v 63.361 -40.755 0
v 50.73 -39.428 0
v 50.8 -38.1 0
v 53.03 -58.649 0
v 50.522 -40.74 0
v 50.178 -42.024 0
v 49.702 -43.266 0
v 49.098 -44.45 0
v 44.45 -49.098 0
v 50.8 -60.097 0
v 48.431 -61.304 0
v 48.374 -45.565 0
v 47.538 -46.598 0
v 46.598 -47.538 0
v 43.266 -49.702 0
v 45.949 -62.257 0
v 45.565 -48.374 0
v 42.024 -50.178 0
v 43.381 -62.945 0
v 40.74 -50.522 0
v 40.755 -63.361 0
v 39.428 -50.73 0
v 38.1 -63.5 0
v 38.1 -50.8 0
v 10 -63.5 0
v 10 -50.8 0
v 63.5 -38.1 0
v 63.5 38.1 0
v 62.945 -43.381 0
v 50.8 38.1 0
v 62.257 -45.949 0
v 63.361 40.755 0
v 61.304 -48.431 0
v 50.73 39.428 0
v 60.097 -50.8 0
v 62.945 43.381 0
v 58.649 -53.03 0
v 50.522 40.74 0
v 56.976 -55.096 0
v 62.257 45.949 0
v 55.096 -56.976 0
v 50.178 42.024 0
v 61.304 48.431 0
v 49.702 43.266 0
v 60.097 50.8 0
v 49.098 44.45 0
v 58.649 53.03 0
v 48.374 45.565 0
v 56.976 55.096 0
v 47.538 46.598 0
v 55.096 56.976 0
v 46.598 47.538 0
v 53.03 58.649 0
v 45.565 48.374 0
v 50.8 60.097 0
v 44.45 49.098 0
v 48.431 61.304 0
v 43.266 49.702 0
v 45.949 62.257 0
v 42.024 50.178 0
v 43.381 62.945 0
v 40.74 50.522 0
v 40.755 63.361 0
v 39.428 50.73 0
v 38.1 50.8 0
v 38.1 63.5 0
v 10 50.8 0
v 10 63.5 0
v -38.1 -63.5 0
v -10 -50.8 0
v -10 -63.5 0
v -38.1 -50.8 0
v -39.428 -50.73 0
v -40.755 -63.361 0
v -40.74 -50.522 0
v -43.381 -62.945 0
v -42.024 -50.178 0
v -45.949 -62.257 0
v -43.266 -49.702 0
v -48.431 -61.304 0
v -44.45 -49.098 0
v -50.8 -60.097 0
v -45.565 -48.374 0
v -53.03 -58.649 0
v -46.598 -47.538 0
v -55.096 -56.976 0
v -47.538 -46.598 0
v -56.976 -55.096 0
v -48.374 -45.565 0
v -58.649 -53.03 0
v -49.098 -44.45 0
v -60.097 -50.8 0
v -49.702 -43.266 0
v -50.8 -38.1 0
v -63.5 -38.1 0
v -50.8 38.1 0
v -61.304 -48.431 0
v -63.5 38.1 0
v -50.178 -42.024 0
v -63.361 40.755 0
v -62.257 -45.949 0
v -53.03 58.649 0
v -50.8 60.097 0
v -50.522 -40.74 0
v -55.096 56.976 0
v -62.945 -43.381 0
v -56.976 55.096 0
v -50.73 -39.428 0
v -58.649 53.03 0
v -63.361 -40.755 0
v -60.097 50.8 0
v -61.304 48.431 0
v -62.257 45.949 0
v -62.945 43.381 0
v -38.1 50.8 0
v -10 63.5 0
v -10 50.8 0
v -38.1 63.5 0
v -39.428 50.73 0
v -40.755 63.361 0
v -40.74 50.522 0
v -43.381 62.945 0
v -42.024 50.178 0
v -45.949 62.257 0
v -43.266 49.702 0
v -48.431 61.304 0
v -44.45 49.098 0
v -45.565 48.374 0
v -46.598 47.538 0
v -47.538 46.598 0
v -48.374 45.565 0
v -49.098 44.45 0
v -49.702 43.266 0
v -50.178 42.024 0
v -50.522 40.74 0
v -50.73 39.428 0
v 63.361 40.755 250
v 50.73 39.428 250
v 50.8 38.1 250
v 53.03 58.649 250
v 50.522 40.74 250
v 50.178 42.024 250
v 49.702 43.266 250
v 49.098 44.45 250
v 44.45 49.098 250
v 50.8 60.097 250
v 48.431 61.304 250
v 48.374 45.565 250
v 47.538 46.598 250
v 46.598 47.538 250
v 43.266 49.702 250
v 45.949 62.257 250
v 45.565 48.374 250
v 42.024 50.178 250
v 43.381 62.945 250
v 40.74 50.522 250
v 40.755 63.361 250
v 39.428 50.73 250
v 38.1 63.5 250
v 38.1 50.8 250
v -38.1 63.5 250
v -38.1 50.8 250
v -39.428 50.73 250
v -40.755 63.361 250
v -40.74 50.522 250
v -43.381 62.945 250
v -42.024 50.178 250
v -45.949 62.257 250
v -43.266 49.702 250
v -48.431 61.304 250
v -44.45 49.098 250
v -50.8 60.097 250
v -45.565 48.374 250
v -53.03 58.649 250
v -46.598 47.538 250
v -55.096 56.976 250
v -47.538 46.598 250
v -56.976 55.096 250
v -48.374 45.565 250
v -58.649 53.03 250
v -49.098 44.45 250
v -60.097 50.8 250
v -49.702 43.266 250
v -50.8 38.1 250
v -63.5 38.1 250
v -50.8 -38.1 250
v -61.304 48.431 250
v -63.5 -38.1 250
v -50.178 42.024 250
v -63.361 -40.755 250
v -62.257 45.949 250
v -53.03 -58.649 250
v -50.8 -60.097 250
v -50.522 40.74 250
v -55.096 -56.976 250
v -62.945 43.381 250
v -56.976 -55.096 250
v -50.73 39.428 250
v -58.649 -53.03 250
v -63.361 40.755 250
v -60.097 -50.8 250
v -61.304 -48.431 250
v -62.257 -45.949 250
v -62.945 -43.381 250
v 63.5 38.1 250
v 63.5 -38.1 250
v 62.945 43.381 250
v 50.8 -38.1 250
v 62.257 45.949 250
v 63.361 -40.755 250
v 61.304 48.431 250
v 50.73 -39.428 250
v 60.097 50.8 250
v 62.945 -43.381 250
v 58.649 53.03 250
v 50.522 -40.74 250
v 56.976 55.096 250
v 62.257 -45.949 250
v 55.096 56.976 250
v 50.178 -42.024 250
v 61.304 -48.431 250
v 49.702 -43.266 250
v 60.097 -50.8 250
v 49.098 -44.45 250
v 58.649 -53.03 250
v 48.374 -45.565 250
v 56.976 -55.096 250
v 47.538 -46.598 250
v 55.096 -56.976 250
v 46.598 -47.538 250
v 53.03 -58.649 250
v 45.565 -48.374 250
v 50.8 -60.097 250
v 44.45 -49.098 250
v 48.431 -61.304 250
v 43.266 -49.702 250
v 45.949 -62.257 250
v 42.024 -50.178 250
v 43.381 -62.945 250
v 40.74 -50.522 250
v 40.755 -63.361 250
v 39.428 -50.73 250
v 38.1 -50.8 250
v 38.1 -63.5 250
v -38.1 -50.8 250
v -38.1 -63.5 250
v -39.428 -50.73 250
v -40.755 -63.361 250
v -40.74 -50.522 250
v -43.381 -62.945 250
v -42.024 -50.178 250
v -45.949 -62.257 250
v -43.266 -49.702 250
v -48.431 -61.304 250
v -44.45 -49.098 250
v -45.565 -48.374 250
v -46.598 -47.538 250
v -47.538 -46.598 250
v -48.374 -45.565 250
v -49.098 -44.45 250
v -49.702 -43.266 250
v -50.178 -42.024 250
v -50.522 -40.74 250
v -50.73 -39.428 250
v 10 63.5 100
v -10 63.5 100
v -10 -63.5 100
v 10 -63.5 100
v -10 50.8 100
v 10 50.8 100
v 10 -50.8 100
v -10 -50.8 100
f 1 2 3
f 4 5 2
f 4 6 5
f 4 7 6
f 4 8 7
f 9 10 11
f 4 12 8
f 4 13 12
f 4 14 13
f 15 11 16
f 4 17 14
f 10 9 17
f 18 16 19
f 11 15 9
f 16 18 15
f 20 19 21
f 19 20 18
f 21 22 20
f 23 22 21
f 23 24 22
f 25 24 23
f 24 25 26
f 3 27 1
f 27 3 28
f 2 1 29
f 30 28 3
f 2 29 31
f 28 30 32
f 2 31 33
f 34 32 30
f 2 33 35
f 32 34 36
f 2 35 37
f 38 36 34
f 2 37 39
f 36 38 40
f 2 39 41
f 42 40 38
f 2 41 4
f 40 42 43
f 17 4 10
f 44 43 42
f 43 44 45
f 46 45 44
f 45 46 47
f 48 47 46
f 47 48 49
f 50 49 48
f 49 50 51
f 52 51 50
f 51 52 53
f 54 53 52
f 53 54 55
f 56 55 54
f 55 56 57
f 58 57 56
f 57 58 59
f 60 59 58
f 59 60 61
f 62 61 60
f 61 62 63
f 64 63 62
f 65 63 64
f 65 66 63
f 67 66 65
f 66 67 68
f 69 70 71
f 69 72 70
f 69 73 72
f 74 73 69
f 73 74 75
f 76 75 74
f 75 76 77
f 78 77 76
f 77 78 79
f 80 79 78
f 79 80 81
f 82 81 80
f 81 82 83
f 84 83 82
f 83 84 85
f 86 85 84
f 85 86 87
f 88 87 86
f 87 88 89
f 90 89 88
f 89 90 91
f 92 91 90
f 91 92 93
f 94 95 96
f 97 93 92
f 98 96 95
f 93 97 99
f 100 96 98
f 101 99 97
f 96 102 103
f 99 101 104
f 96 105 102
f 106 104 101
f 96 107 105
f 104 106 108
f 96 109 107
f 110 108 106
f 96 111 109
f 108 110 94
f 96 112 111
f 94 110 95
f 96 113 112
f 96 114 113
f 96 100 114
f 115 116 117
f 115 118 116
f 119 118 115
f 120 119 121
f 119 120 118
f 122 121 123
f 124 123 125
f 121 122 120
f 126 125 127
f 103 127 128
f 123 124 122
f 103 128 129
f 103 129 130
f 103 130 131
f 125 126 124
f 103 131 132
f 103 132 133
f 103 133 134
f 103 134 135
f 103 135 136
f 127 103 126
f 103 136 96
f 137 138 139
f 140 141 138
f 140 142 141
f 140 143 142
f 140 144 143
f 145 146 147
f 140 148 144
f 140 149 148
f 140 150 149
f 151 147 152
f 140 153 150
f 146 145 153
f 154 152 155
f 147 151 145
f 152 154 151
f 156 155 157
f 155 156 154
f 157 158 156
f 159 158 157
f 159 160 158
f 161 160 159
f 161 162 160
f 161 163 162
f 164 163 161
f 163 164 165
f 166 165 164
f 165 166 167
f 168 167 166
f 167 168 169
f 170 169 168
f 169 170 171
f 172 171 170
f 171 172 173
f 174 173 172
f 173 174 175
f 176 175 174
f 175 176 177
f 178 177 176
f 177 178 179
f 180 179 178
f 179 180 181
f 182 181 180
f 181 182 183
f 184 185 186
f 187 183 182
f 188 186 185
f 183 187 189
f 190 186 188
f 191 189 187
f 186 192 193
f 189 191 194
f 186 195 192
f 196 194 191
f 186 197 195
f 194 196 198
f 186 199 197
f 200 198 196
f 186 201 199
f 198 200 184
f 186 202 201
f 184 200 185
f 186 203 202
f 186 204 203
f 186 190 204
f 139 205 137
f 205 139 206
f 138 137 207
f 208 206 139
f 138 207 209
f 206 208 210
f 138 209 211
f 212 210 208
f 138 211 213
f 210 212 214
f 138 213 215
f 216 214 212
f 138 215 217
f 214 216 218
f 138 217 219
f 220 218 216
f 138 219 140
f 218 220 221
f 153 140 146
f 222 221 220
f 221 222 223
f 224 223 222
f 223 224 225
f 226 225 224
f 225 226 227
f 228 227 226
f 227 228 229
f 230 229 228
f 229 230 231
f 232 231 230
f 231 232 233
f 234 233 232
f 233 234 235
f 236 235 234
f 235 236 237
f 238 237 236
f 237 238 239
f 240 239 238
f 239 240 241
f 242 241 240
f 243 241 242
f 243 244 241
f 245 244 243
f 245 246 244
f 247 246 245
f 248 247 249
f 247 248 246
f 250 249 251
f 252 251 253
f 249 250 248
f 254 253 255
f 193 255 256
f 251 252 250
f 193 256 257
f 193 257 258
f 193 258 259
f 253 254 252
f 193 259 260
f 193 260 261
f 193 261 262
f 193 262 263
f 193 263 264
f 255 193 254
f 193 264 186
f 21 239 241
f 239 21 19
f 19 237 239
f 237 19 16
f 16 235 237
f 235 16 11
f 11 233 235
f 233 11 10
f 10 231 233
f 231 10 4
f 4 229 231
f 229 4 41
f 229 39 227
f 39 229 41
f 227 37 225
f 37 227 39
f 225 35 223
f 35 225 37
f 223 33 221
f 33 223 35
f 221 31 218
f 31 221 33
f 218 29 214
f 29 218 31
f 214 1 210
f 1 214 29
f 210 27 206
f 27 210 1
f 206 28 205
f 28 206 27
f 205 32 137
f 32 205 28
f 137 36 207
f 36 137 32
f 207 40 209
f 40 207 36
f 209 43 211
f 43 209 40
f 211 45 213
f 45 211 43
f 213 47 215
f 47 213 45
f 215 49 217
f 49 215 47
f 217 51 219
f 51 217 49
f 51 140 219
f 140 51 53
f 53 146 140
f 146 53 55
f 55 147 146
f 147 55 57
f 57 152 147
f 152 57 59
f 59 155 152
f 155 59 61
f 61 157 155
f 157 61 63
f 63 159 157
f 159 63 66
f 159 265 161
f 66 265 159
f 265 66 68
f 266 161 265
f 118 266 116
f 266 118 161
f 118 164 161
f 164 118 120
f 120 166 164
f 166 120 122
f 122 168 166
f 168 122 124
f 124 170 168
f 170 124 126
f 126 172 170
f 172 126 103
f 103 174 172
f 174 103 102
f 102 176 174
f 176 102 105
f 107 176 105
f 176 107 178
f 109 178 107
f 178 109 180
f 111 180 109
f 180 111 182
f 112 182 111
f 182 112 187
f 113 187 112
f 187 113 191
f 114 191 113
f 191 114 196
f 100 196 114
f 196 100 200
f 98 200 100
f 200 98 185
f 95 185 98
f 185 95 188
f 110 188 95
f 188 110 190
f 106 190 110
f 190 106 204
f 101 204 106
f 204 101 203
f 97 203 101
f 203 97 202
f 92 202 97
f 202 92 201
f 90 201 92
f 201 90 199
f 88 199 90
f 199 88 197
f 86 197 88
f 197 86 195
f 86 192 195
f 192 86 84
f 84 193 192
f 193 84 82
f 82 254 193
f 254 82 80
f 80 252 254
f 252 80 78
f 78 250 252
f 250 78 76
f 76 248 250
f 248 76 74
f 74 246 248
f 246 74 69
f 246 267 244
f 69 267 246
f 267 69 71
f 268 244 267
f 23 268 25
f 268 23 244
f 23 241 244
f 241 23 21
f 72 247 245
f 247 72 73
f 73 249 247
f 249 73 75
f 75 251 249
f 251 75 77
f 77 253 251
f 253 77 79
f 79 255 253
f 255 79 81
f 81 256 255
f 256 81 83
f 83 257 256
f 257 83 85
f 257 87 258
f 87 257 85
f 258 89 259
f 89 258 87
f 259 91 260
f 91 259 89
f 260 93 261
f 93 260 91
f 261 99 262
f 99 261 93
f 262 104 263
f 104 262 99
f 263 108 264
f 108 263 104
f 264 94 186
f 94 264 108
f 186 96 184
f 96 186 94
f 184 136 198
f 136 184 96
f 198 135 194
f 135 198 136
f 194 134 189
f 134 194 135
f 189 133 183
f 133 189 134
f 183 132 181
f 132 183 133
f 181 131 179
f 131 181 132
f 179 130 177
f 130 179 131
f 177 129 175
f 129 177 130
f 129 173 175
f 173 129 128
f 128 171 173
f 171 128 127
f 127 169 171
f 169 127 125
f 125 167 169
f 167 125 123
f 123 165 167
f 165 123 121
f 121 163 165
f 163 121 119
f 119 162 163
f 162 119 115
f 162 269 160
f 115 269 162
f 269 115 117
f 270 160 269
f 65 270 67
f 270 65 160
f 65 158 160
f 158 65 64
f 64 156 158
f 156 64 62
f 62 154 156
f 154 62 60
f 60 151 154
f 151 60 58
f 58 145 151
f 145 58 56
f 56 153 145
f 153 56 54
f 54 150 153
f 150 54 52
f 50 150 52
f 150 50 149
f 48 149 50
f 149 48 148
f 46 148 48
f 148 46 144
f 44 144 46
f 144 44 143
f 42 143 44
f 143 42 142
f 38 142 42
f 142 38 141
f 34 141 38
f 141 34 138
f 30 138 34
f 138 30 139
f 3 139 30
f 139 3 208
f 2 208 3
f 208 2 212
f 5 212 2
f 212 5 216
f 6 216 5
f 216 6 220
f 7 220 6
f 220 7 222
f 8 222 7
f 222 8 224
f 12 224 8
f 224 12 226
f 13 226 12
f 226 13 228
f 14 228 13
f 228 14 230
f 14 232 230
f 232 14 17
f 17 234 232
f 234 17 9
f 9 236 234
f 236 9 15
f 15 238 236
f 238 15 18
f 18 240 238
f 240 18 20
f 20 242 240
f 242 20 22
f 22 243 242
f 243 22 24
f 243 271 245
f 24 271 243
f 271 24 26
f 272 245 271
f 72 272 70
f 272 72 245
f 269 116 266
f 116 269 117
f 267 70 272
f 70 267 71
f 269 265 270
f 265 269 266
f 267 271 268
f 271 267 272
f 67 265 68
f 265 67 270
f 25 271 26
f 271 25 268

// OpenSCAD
// file: lib/HSS.scad
module HSSsolid(d,b,r) {
    d2 = d/2;
    b2 = b/2;
    pts = [ [b2,d2-r],     // upper right corner
            [b2-r,d2],
            [-(b2-r),d2],  // upper left
            [-b2,d2-r],
            [-b2,-(d2-r)],  // lower left
            [-(b2-r),-d2],
            [b2-r,-d2],     // lower right
            [b2,-(d2-r)]];
    union() {
        polygon(pts);
        translate([b2-r,d2-r,0]) circle(r=r,$fn=60);
        translate([-(b2-r),d2-r,0]) circle(r=r,$fn=60);
        translate([-(b2-r),-(d2-r),0]) circle(r=r,$fn=60);
        translate([b2-r,-(d2-r),0]) circle(r=r,$fn=60);
    }
}


module HSS(d,b,t,l=300,r1=undef,r2=undef) {    
    r1 = r1 == undef ? 2*t : r1;
    r2 = r2 == undef ? r1-t : r2;
    
    linear_extrude(height=l) {
        difference() {
            HSSsolid(d,b,r1);
            HSSsolid(d-2*t,b-2*t,r2);
        }
    }
}

module HSS_round(od,t,l=300) {
    difference() {
        cylinder(d=od,h=l,$fn=60);
        cylinder(d=od-2*t,h=l,$fn=60);
    }
}

render() {
    HSS(152.4,101.6,12.7); // HSS 152x102x13  (G40)
    translate([0,0,-300]) HSS_round(168.3,12.7); // HSS 168x13
}
    
// file: params.scad
// Global Parameters for Dimon brace

// The HSS is a HSS 127x127x13 G40.20

HSS_d = 127.0;
HSS_b = 127.0;
HSS_t = 12.7;
HSS_l = 250.0;    //length of HSS for model

// The tongue plate (welded into slot in HSS)

TP_t = 20.0;
TP_w = 280.0;
TP_l = 260.0;   // total length
TP_lw = 100.0;  // length of welded portion

// cover plate (welded on HSS)

CP_t = 10;
CP_w = 60;
CP_l = 200;
CP_setback = 10;
CP_lw = CP_l;

// welds

TP_D = 8;
CP_D = 6;


// misc.

$fn = 60;       // number of sides for poly approx to circles
// main file
include <params.scad>;

use <lib/HSS.scad>;

render () {
    difference() {
        HSS(HSS_d,HSS_b,HSS_t,l=HSS_l);
        translate([-TP_t/2,-TP_w/2,-(TP_l-TP_lw)]) 
            cube([TP_t,TP_w,TP_l]);
    }
}
